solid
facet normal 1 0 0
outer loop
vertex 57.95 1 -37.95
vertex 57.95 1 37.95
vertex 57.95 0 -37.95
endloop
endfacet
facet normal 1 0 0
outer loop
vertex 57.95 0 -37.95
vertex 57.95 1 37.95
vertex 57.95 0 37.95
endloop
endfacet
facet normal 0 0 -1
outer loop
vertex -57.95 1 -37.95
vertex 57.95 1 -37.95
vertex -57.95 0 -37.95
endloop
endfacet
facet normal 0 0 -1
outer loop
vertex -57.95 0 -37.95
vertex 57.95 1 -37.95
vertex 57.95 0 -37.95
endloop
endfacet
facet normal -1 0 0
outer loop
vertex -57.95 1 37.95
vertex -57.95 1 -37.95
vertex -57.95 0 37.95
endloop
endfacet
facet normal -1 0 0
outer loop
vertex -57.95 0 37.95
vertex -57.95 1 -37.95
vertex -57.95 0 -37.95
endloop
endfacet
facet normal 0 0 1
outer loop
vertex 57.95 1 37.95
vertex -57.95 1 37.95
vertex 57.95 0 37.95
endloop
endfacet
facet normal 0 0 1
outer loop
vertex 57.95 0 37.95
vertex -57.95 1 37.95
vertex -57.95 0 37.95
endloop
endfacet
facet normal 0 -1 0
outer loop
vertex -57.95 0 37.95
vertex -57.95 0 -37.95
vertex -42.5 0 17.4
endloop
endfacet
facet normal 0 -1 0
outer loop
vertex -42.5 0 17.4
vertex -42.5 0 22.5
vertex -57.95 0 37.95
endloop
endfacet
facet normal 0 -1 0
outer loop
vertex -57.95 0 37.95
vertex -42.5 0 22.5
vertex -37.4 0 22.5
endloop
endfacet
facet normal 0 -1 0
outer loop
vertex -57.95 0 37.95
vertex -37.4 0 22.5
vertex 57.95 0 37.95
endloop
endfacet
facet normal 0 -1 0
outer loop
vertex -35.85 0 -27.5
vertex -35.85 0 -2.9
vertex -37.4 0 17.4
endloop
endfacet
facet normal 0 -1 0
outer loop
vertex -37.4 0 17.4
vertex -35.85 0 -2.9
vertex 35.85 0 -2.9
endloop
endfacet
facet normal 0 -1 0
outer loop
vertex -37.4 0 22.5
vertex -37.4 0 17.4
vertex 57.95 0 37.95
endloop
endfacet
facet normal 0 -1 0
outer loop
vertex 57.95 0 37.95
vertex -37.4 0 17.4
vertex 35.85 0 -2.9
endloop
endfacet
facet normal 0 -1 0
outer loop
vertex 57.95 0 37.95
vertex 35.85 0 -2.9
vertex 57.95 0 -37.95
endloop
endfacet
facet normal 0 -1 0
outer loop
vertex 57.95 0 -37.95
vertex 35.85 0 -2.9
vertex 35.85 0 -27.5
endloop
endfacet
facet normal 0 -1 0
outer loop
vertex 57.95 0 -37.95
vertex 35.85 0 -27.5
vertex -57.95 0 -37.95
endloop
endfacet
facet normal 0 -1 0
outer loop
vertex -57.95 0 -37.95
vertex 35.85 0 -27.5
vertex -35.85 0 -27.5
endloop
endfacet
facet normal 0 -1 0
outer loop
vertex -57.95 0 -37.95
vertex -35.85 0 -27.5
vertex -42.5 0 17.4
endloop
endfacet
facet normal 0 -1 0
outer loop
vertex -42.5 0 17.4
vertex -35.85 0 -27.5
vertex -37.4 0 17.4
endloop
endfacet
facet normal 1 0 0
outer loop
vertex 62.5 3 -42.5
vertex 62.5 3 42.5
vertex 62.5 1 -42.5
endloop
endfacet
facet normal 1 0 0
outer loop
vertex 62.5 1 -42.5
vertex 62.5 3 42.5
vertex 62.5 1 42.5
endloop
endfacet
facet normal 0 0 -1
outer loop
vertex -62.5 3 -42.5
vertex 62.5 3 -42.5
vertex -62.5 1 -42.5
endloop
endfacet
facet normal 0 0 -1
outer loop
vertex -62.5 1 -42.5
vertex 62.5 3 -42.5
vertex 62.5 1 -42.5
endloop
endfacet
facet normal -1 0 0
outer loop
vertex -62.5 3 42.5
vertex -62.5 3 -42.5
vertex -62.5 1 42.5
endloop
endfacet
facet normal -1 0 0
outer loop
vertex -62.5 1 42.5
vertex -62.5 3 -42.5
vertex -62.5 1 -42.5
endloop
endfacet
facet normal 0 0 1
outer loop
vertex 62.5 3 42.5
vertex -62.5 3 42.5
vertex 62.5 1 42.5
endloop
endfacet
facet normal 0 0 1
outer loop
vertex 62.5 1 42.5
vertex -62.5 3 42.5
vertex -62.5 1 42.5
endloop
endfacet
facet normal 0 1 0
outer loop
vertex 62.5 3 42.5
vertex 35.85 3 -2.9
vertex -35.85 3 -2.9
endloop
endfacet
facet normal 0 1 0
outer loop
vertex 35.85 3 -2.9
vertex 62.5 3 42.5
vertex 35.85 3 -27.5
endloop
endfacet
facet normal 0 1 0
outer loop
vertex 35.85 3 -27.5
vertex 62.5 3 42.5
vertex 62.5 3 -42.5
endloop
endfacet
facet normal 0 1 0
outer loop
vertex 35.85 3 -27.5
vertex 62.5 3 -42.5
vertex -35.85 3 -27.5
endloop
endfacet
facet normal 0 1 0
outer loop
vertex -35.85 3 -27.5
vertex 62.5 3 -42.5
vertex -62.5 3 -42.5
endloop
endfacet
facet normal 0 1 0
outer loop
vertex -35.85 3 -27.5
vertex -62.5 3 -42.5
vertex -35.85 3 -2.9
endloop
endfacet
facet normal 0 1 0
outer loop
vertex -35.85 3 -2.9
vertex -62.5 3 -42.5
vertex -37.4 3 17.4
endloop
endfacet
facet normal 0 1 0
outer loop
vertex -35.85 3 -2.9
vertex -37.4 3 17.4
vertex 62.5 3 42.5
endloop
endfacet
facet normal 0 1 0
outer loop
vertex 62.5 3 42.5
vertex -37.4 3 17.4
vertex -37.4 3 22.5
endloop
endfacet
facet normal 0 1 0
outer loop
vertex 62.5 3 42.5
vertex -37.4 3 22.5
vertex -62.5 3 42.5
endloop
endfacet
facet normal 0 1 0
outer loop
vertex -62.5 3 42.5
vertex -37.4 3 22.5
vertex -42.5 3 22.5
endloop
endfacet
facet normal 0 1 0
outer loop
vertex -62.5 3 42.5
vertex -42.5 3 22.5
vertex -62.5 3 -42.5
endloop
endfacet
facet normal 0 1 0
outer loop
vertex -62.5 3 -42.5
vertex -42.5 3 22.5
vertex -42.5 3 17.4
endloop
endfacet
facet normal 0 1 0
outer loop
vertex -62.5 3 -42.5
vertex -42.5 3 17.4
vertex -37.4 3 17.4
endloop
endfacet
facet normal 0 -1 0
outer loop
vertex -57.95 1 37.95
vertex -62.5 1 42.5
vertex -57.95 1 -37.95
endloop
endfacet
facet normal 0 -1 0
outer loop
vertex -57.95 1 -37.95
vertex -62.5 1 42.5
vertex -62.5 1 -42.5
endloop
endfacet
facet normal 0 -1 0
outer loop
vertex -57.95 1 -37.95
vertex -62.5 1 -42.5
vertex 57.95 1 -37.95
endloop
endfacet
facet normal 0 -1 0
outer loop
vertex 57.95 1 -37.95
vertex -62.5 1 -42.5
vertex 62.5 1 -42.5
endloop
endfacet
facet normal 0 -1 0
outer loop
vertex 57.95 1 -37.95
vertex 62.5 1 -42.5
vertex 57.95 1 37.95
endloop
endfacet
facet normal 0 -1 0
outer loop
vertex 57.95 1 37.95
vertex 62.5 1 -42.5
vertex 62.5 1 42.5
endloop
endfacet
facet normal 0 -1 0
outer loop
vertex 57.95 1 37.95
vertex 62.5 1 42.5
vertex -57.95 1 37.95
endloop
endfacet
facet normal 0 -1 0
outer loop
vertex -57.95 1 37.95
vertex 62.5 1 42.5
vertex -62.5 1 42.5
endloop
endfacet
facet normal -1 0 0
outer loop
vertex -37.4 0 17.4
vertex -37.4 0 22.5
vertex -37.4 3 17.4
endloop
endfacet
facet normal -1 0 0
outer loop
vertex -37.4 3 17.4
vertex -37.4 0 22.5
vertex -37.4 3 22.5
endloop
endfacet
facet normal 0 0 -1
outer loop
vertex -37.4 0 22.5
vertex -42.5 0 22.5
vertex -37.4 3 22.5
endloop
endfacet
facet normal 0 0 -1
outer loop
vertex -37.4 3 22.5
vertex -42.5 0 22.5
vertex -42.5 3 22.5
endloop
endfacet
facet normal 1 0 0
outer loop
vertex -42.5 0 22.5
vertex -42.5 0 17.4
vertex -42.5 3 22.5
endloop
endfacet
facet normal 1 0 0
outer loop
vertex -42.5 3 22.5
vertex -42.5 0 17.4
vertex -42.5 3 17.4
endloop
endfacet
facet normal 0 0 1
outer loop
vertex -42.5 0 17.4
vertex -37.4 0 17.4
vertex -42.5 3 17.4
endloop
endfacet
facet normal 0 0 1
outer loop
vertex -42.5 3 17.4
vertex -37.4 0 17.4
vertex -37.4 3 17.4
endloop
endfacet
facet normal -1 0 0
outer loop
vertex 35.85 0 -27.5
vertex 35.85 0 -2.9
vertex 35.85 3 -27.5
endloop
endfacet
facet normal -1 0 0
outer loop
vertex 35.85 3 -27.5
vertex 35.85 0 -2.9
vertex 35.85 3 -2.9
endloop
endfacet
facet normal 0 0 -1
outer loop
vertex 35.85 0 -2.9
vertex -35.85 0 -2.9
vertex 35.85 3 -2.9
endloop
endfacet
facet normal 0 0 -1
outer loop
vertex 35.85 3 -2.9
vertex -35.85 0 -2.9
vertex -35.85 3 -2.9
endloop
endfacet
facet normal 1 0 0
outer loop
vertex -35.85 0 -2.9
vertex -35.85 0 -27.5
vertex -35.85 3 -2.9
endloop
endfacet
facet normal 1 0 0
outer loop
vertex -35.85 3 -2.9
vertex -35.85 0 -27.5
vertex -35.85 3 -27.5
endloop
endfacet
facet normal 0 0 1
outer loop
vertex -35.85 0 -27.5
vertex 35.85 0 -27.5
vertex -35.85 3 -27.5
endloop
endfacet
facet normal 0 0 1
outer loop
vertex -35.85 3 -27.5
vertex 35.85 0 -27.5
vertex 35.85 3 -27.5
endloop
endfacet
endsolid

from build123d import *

# Parameters (mm, degrees)
ESBO_O1_W                = 115.9
ESBO_O1_H                = 75.9
RESSALTO_EXTRUS_O1_DEPTH = 1
ESBO_O2_W                = 125
ESBO_O2_H                = 85
RESSALTO_EXTRUS_O2_DEPTH = 2
ESBO_O3_W                = 71.7
ESBO_O3_H                = 24.6
ESBO_O3_W_2              = 5.1
ESBO_O3_H_2              = 5.1
CORTE_EXTRUS_O1_DEPTH    = 76.640597565


with BuildPart() as part:
    # Esboço1 → Ressalto-extrusão1 (new body)
    with BuildSketch(Plane(origin=(0, 0, 0), x_dir=(1, 0, 0), z_dir=(0, 1, 0))):
        Rectangle(ESBO_O1_W, ESBO_O1_H)
    extrude(amount=RESSALTO_EXTRUS_O1_DEPTH)

    # Esboço2 → Ressalto-extrusão2 (add)
    with BuildSketch(Plane(origin=(0, 1, 0), x_dir=(1, 0, 0), z_dir=(0, 1, 0))):
        Rectangle(ESBO_O2_W, ESBO_O2_H)
    extrude(amount=RESSALTO_EXTRUS_O2_DEPTH)

    # Esboço3 → Corte-extrusão1 (cut, through all)
    with BuildSketch(Plane(origin=(0, 3, 0), x_dir=(1, 0, 0), z_dir=(0, 1, 0))):
        with Locations((0, 15.2)):
            Rectangle(ESBO_O3_W, ESBO_O3_H)
        with Locations((-39.95, -19.95)):
            Rectangle(ESBO_O3_W_2, ESBO_O3_H_2)
    extrude(amount=-CORTE_EXTRUS_O1_DEPTH, mode=Mode.SUBTRACT)


solid = part.part
